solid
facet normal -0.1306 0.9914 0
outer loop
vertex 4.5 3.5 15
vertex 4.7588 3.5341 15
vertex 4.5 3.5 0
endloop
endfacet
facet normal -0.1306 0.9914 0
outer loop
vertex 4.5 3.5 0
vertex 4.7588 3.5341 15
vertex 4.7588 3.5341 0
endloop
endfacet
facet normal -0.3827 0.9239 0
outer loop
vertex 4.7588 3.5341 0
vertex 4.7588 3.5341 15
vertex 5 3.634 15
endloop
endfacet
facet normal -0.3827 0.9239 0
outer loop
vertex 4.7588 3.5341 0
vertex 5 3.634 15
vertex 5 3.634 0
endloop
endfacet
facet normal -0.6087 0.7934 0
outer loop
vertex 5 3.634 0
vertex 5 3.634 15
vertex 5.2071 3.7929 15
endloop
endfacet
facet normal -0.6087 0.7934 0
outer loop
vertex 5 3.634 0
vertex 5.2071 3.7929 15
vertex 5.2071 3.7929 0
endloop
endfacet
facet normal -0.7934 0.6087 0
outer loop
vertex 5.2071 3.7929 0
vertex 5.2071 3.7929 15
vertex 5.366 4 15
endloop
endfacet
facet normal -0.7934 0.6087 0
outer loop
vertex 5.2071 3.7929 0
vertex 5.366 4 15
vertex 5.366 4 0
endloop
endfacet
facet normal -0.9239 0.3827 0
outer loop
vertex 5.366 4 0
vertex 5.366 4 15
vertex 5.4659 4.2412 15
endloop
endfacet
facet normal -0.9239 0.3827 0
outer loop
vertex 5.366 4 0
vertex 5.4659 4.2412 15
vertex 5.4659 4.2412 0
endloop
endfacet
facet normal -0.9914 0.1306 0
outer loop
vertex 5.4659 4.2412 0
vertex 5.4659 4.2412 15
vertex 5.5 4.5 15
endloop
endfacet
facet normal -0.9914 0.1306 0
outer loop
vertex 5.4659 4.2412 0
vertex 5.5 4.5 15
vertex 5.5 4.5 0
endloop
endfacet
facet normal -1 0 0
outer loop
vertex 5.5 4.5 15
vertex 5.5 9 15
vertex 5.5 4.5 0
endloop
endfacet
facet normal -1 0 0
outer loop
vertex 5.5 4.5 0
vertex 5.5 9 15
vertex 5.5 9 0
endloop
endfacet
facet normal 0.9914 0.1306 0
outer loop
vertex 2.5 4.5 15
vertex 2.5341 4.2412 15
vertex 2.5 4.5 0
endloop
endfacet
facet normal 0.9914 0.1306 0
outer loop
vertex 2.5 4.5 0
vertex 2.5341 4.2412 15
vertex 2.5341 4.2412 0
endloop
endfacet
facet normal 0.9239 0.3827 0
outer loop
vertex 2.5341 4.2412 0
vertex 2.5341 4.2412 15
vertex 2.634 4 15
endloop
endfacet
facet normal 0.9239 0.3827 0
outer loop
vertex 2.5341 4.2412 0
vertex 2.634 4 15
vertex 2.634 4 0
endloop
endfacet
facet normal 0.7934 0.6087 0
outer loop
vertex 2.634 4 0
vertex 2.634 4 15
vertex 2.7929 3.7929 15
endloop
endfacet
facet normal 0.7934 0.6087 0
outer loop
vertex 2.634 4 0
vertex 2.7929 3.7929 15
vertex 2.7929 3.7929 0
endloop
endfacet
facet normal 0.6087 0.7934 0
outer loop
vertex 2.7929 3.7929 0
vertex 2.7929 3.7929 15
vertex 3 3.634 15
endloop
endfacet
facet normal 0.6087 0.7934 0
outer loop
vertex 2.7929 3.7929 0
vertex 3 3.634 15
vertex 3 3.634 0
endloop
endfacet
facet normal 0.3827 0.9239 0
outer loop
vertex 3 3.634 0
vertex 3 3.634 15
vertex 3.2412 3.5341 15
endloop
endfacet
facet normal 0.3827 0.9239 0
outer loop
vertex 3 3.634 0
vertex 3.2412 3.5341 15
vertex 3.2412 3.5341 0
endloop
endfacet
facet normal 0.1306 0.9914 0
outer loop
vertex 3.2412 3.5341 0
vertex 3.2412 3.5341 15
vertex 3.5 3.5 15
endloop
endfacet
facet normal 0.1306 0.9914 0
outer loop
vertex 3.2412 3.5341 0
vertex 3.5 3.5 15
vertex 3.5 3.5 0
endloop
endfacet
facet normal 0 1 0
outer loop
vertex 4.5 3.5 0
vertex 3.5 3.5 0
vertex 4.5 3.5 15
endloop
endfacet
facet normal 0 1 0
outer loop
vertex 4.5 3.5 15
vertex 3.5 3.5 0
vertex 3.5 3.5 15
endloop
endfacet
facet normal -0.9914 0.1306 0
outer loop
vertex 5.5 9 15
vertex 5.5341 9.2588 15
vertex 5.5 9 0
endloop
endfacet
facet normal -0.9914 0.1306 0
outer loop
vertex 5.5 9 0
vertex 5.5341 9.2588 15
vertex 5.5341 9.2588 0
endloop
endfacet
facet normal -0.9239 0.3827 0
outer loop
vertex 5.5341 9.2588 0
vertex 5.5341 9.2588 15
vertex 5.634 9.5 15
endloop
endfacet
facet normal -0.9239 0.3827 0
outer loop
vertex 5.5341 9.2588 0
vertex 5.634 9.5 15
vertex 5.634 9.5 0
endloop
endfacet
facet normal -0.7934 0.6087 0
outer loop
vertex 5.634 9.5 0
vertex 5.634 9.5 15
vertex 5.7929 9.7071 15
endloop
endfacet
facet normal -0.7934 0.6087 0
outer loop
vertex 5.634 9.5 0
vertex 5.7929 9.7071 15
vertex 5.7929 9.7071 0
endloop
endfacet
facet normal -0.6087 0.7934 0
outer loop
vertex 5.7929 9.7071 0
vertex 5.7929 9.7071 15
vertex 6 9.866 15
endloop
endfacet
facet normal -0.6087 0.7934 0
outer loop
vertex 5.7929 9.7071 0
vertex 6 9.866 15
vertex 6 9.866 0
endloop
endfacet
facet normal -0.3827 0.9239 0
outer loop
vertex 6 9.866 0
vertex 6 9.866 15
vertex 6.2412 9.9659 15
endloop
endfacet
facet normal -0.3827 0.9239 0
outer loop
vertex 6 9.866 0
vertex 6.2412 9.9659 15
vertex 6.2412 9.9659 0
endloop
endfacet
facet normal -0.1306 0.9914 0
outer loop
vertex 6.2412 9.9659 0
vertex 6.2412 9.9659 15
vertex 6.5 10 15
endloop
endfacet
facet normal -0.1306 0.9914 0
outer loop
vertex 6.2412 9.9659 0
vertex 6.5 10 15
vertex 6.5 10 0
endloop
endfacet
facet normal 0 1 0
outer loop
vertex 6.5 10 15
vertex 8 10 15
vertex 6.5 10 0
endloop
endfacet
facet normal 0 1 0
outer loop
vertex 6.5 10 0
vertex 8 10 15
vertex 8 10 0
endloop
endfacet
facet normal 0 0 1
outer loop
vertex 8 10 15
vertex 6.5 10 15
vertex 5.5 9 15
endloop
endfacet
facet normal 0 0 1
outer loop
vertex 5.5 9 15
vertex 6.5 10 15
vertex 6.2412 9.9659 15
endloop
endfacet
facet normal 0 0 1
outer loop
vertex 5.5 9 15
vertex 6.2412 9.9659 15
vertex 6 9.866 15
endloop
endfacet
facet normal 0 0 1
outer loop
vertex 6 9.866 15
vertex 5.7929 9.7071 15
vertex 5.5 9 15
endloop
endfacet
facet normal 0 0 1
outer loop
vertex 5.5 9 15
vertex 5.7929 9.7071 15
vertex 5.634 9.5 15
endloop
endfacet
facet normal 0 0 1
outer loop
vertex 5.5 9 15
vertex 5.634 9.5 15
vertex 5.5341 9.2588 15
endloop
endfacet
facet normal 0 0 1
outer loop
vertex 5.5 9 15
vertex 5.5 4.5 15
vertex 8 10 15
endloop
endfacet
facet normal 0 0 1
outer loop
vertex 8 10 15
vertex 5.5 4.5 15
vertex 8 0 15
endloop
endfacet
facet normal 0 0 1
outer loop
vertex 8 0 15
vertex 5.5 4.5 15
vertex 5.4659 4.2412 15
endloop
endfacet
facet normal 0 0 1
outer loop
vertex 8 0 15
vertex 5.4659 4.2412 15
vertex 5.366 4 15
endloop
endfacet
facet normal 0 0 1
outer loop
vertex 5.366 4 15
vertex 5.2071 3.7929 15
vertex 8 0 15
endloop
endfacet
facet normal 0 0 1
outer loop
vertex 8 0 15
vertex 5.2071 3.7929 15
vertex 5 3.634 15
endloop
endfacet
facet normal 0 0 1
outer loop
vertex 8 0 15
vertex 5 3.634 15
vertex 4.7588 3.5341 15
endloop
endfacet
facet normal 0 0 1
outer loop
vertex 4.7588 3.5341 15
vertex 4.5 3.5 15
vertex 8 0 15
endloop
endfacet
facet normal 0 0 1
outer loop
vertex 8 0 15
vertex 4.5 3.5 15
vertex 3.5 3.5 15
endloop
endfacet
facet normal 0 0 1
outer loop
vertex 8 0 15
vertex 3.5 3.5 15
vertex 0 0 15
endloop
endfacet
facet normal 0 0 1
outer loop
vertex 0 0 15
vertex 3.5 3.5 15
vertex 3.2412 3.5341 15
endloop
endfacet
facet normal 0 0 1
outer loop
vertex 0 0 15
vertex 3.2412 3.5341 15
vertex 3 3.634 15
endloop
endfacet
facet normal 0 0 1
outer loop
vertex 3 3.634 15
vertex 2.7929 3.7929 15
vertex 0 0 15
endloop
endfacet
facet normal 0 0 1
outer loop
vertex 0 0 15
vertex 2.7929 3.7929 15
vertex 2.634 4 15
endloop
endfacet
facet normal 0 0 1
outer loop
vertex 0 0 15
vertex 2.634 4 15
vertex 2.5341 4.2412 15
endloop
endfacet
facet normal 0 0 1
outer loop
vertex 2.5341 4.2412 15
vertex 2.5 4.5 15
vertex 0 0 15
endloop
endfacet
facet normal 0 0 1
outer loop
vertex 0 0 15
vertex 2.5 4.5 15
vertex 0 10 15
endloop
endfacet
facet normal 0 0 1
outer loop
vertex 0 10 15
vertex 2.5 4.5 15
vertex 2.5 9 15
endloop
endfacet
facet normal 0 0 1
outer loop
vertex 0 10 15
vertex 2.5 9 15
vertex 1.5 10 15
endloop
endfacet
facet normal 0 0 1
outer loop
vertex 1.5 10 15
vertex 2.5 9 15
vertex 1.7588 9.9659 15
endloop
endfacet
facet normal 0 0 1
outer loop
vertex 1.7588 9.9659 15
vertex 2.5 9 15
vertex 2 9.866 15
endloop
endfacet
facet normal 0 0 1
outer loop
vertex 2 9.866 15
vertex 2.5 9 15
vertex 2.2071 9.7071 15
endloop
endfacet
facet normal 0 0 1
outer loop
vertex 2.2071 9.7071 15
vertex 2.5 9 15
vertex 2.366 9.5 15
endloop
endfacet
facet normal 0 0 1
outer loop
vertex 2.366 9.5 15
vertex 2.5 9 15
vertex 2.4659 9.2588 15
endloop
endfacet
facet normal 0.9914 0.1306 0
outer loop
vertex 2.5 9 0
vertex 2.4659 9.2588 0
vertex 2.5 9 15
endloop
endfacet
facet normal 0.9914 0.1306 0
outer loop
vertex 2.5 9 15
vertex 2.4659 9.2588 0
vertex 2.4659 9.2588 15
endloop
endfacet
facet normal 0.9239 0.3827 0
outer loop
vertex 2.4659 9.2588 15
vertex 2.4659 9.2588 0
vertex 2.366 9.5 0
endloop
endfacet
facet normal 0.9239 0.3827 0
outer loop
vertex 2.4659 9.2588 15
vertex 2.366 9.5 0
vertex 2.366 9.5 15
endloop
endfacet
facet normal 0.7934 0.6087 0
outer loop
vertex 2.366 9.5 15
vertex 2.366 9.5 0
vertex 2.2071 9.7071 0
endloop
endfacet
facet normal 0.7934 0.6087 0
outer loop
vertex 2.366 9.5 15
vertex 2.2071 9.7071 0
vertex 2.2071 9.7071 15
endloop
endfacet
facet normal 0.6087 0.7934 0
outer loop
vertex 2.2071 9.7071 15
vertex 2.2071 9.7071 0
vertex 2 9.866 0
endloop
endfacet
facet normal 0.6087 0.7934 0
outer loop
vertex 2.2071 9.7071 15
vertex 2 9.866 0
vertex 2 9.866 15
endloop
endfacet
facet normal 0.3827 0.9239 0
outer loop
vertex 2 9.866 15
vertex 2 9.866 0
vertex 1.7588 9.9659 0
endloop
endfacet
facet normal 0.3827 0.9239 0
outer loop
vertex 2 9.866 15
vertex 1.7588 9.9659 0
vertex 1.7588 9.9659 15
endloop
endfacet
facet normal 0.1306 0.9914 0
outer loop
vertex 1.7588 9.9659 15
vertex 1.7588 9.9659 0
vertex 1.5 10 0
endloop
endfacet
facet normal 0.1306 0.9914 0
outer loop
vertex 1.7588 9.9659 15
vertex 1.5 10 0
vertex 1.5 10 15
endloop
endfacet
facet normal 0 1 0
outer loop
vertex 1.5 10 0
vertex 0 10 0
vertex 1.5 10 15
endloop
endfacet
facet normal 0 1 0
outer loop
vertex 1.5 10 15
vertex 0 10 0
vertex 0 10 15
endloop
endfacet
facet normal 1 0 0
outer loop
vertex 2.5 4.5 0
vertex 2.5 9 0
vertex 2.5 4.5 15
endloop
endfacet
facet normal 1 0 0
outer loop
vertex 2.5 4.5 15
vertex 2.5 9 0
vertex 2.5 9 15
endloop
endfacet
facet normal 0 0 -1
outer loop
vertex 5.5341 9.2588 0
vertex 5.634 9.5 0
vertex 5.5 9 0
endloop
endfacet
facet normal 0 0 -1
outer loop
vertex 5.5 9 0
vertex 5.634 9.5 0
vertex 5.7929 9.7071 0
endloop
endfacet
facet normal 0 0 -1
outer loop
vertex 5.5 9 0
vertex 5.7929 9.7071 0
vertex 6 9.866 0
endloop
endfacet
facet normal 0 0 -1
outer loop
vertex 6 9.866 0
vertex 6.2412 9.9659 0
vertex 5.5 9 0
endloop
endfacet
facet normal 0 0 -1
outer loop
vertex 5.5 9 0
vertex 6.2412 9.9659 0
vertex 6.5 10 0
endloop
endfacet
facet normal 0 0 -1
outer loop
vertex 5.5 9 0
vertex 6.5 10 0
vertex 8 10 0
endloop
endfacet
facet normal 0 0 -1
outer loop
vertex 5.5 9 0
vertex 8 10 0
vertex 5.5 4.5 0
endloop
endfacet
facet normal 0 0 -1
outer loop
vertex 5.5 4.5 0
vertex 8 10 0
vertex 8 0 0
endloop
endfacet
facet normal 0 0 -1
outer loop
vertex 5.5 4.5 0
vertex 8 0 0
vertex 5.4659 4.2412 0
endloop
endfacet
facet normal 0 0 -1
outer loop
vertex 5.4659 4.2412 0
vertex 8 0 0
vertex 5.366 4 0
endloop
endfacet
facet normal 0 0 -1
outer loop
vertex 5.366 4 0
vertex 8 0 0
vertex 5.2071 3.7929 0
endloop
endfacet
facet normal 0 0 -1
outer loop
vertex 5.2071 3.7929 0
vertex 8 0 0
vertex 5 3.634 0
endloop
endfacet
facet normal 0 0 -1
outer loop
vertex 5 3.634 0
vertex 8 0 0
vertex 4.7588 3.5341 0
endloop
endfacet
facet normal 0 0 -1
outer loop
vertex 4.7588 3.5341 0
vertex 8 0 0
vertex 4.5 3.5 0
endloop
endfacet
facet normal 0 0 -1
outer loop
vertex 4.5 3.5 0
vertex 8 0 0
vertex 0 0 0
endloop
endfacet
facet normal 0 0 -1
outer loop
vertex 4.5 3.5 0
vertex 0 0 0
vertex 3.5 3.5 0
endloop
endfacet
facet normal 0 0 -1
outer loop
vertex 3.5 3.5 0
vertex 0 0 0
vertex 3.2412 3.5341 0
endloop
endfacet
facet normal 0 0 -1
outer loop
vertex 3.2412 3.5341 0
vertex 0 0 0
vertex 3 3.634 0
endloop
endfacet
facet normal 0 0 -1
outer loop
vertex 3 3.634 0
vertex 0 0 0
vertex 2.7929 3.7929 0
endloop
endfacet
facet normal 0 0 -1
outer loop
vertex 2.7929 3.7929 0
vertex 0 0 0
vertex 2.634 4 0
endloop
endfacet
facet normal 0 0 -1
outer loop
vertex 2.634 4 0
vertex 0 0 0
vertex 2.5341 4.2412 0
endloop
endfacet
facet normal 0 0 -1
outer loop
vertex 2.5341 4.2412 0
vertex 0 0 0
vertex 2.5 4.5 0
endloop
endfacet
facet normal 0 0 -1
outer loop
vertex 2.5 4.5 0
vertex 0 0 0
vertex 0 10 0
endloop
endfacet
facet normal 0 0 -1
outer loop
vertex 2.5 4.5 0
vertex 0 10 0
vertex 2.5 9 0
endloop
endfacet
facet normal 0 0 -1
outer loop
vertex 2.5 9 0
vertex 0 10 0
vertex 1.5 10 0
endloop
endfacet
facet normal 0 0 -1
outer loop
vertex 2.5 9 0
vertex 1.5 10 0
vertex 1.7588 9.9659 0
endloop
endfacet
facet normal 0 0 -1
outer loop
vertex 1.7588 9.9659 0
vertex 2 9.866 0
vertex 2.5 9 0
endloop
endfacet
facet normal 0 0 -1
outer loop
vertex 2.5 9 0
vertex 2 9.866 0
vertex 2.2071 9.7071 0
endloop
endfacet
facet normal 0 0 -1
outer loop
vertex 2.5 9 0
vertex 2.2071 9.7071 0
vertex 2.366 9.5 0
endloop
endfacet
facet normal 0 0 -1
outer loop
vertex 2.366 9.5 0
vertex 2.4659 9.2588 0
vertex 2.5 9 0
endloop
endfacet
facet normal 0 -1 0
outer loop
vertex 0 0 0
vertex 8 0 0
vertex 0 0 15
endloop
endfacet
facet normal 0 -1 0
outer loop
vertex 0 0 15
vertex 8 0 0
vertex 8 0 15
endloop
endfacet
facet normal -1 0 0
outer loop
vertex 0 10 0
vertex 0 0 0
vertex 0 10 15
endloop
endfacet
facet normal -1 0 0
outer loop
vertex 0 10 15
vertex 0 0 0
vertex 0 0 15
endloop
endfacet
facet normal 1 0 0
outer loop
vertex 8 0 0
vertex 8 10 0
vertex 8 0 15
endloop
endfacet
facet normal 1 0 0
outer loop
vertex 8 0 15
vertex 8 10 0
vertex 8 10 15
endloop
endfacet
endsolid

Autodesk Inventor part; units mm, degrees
ref_plane "YZ Plane" through (0, 0, 0) normal (1, 0, 0) x (0, 1, 0)
ref_plane "XZ Plane" through (0, 0, 0) normal (0, 1, 0) x (-1, 0, 0)
ref_plane "XY Plane" through (0, 0, 0) normal (0, 0, 1) x (1, 0, 0)
sketch "Sketch1" plane through (0, 0, 0) normal (0, 0, 1) x (1, 0, 0)
  line L0 (0, 0) -> (8, 0)
  line L1 (8, 0) -> (8, 10)
  line L2 (8, 10) -> (0, 10)
  line L3 (0, 10) -> (0, 0)
  dimension "d0" = 8
  dimension "d1" = 10
extrude "Extrusion1" add sketch "Sketch1" along normal blind 15
sketch "Sketch2" plane through (0, 0, 15) normal (0, 0, 1) x (1, 0, 0)
  line L0 (8, 10) -> (0, 10) projected
  line L1 (2.5, 10) -> (5.5, 10)
  line L2 (5.5, 10) -> (5.5, 3.5)
  line L3 (5.5, 3.5) -> (2.5, 3.5)
  line L4 (2.5, 3.5) -> (2.5, 10)
  line L5 (0, 10) -> (0, 0) projected
  line L6 (8, 0) -> (8, 10) projected
  line L7 (0, 0) -> (8, 0) projected
  dimension "d4" = 2.5
  dimension "d5" = 2.5
  dimension "d6" = 3.5
extrude "Extrusion2" cut sketch "Sketch2" against normal blind 15 contours L2 L3 L4 L0
fillet "Fillet2" radius 1 4 edges at (2.5, 10, 7.5) (5.5, 10, 7.5) (2.5, 3.5, 7.5) (5.5, 3.5, 7.5)
properties part number "koppelstuk"
